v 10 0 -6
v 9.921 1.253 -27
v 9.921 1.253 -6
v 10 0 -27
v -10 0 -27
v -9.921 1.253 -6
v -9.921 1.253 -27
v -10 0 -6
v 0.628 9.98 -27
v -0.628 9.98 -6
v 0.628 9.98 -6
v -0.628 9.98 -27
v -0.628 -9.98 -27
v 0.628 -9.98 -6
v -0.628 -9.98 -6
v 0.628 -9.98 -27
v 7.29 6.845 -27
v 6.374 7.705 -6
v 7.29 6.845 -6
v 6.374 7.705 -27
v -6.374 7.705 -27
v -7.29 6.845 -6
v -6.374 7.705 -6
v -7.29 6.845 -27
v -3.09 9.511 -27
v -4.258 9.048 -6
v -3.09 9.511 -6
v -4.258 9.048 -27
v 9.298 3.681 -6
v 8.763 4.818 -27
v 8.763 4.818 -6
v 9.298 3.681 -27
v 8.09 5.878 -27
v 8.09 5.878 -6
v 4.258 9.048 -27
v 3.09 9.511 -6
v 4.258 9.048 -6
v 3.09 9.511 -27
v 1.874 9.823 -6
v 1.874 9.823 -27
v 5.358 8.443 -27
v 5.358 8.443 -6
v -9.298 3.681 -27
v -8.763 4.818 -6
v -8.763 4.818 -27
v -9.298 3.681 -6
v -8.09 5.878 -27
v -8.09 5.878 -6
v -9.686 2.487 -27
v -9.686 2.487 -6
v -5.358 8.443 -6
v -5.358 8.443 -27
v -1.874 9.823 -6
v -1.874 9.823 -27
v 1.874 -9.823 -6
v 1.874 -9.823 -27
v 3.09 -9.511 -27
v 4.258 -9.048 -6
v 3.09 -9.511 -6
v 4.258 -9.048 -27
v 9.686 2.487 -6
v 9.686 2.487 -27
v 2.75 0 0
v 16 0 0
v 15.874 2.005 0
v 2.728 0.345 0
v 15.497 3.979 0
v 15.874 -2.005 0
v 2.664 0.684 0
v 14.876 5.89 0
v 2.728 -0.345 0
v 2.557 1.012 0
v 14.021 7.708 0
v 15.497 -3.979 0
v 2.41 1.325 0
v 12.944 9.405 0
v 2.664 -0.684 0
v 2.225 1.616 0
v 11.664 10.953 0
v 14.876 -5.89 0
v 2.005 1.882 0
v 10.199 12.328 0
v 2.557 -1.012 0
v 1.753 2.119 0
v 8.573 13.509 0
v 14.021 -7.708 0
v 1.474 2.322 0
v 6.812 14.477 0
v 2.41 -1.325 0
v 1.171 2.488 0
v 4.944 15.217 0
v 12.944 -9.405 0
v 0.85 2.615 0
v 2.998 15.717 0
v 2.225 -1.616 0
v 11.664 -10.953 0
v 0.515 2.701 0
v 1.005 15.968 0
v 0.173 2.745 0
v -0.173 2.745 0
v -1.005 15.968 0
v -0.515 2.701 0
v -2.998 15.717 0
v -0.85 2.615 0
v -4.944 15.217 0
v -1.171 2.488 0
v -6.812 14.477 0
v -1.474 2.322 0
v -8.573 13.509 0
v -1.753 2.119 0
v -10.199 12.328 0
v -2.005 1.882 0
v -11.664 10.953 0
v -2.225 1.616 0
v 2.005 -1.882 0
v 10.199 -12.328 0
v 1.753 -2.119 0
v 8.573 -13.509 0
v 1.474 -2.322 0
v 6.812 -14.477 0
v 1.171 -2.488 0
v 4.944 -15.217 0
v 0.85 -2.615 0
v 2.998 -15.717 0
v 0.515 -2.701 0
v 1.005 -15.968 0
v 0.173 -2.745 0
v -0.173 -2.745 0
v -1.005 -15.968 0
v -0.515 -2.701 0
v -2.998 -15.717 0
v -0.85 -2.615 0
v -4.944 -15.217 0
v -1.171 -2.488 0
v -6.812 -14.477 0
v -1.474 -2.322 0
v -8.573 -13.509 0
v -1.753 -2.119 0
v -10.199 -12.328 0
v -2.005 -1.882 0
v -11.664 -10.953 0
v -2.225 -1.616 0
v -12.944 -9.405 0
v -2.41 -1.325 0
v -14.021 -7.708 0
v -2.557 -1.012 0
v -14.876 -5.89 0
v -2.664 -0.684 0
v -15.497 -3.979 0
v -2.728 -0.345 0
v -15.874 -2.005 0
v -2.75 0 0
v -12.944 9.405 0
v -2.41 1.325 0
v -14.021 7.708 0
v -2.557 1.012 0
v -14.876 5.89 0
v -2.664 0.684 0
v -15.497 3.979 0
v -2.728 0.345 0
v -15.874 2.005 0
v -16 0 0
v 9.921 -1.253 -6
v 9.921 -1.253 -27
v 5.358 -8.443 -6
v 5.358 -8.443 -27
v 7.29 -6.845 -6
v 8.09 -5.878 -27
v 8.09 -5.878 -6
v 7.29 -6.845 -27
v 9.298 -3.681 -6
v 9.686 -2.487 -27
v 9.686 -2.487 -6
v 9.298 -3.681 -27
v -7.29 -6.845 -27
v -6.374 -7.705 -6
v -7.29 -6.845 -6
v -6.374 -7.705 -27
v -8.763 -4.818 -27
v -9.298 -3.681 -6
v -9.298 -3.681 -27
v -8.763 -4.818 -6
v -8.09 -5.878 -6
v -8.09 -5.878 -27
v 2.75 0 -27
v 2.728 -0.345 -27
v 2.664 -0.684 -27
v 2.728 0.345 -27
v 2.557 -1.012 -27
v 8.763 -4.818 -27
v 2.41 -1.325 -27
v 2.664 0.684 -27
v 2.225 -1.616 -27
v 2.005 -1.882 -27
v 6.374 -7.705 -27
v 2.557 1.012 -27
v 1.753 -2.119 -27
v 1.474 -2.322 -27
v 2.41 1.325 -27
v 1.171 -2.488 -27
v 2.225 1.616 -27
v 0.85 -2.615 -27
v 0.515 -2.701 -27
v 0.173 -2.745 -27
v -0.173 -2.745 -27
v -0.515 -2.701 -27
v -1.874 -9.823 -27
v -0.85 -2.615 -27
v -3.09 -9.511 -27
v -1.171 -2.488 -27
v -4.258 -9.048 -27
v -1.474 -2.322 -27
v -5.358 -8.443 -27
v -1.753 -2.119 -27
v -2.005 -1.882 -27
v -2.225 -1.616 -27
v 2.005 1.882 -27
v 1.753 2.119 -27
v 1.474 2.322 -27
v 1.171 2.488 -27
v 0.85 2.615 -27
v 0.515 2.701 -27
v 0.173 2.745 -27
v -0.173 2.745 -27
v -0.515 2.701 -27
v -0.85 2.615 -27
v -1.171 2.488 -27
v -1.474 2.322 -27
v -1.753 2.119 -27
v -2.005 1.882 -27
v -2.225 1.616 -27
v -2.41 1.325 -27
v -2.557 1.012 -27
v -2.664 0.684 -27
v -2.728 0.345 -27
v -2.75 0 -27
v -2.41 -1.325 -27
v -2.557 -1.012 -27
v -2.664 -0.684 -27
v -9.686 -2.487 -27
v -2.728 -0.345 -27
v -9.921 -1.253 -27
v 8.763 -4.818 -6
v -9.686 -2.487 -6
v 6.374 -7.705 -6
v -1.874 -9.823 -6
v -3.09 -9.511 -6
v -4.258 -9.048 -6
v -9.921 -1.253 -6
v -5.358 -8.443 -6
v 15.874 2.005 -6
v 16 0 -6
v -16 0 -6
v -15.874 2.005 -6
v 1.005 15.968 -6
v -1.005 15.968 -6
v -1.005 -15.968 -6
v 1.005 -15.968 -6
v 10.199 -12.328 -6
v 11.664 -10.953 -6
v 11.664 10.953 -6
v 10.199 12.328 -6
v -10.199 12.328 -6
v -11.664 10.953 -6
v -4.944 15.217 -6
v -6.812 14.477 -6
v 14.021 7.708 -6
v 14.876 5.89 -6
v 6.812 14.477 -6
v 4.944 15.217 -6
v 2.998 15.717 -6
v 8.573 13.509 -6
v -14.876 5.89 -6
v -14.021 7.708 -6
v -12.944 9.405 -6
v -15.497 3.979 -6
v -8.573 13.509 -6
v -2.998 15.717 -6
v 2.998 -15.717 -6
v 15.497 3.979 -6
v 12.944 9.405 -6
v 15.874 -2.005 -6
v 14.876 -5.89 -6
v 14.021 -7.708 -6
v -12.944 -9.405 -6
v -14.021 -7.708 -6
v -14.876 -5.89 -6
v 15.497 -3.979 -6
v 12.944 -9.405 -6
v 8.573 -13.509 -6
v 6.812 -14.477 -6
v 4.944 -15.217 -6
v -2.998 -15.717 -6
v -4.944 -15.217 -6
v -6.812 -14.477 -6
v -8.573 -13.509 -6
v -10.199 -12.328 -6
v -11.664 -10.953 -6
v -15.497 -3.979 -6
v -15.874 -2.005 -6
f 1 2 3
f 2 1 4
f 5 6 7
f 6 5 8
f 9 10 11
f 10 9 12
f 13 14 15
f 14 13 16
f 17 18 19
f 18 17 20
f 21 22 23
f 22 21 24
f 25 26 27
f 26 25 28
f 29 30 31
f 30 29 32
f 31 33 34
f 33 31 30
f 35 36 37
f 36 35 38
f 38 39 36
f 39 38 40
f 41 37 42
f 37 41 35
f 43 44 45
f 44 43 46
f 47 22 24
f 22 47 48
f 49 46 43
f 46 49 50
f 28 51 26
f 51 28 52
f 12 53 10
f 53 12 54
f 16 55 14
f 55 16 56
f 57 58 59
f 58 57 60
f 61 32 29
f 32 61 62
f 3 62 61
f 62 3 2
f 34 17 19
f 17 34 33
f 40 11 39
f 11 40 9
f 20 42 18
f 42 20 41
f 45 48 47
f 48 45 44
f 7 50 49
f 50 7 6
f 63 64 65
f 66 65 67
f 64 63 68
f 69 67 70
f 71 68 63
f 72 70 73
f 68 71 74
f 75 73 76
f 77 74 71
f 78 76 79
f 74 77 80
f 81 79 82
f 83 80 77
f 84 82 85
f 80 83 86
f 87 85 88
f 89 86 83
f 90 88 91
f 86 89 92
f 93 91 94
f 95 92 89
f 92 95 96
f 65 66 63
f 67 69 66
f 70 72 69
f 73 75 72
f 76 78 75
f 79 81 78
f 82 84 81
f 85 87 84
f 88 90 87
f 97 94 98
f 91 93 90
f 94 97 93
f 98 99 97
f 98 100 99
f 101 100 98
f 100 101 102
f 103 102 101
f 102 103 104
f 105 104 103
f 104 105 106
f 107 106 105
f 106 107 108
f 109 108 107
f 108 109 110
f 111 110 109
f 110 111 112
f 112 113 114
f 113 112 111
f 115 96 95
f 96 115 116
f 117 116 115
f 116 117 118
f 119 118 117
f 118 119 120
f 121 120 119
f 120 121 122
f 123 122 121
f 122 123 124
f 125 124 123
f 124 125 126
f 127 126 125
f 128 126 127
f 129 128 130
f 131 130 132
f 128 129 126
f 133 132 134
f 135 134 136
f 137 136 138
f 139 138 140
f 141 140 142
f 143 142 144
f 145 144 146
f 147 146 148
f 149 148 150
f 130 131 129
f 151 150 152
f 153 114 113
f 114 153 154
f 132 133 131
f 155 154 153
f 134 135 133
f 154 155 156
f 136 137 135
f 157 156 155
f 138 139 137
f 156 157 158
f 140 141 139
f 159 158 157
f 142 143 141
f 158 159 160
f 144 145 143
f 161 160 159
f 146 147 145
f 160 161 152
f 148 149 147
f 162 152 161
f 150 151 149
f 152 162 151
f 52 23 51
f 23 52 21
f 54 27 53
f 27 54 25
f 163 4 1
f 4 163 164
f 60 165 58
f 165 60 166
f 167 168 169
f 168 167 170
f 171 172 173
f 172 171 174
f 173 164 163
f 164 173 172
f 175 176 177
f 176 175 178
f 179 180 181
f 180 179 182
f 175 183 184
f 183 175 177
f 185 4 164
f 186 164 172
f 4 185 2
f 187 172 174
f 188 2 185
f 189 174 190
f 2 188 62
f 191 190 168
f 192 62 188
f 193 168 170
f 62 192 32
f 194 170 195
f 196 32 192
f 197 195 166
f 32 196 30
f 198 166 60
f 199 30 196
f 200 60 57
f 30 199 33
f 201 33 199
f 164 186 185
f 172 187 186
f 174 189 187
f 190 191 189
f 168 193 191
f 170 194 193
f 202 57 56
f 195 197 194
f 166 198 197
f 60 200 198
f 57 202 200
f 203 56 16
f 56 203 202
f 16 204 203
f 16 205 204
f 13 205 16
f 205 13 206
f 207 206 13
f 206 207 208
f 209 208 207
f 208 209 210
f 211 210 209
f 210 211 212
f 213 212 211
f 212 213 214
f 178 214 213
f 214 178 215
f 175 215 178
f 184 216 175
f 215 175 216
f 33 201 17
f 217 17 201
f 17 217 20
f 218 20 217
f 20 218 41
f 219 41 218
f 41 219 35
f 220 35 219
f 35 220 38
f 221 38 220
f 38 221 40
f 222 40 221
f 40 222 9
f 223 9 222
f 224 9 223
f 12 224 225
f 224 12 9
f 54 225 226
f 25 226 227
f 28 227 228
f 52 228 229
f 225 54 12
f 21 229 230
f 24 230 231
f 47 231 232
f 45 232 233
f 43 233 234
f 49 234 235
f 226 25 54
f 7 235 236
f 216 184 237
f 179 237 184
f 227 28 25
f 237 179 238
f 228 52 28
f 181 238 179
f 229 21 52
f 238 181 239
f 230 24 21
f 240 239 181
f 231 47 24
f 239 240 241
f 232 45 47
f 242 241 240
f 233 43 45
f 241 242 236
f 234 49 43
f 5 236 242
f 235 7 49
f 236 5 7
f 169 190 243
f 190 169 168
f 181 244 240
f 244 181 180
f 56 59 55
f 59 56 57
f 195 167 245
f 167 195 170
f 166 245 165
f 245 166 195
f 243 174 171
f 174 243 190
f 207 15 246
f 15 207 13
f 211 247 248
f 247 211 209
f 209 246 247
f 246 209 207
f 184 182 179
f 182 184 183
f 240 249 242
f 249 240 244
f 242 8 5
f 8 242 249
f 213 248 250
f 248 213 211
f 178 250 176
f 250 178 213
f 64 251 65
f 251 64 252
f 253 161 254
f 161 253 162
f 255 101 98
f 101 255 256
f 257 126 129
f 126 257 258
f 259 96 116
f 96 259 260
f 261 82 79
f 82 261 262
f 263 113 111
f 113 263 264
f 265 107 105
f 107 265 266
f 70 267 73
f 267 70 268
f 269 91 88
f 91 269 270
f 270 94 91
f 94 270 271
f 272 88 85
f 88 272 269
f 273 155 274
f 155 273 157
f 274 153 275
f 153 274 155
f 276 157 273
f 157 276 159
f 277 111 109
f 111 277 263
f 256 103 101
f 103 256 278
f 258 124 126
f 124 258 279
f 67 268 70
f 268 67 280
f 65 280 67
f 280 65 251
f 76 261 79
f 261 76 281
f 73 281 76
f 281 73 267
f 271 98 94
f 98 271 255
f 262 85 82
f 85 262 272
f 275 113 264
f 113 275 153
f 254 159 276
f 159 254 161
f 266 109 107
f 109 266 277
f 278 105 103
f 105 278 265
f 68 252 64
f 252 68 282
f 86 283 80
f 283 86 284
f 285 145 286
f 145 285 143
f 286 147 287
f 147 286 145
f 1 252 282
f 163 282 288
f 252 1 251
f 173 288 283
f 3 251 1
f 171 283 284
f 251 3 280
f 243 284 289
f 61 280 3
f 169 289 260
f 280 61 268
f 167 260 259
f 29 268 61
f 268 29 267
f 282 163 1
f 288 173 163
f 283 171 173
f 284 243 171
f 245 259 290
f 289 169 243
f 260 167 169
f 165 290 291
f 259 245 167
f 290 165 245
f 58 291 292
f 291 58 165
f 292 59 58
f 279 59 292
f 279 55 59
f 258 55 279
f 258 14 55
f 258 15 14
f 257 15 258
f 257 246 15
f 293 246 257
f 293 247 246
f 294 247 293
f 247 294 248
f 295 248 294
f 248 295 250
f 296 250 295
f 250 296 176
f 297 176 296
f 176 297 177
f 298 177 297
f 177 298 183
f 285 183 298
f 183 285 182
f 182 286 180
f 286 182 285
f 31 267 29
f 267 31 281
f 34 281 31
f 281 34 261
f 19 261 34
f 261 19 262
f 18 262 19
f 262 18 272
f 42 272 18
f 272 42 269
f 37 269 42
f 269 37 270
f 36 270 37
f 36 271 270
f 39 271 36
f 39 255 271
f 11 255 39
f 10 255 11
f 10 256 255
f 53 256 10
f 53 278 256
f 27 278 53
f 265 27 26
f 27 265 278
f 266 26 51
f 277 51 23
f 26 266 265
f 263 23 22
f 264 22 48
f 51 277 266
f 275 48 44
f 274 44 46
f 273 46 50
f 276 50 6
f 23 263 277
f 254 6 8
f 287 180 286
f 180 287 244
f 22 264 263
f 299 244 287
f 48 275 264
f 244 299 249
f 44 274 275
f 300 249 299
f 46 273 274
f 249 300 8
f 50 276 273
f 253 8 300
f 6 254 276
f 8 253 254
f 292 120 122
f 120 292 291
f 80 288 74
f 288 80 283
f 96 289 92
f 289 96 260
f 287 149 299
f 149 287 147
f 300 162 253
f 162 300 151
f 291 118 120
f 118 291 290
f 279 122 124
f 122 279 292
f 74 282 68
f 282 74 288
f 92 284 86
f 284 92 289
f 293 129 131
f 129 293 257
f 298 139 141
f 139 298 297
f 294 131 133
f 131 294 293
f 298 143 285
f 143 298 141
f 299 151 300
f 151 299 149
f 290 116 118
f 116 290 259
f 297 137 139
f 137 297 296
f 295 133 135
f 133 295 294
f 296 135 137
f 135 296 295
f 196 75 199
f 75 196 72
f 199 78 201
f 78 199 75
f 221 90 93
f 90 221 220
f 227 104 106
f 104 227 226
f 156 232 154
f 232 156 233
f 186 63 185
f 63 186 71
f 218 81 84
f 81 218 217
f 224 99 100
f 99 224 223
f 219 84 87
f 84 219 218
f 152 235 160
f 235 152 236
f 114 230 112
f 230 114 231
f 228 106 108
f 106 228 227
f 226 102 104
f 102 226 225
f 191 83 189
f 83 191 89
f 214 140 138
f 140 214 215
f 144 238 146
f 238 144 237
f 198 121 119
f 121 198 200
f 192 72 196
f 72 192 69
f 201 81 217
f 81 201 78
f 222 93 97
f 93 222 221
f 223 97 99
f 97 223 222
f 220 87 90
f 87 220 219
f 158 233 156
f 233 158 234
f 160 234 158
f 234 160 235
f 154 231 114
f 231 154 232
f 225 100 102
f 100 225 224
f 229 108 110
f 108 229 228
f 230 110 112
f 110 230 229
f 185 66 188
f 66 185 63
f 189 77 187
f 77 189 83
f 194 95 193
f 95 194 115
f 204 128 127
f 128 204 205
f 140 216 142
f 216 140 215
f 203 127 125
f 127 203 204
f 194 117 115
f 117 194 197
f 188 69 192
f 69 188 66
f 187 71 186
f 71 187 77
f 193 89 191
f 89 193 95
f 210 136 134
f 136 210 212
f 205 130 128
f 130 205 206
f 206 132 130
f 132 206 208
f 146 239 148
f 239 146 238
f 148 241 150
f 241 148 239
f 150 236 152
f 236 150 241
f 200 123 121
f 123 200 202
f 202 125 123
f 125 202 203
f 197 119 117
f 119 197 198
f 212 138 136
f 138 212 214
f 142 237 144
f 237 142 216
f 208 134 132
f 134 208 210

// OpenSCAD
$fn = 50;


difference() {
	union() {
		translate(v = [0, 0, -27.0000000000]) {
			cylinder(h = 27, r = 10.0000000000);
		}
		translate(v = [0, 0, -6.0000000000]) {
			cylinder(h = 6, r = 16.0000000000);
		}
	}
	union() {
		#translate(v = [0, 0, -27]) {
			cylinder(h = 27, r = 2.7500000000);
		}
	}
}
